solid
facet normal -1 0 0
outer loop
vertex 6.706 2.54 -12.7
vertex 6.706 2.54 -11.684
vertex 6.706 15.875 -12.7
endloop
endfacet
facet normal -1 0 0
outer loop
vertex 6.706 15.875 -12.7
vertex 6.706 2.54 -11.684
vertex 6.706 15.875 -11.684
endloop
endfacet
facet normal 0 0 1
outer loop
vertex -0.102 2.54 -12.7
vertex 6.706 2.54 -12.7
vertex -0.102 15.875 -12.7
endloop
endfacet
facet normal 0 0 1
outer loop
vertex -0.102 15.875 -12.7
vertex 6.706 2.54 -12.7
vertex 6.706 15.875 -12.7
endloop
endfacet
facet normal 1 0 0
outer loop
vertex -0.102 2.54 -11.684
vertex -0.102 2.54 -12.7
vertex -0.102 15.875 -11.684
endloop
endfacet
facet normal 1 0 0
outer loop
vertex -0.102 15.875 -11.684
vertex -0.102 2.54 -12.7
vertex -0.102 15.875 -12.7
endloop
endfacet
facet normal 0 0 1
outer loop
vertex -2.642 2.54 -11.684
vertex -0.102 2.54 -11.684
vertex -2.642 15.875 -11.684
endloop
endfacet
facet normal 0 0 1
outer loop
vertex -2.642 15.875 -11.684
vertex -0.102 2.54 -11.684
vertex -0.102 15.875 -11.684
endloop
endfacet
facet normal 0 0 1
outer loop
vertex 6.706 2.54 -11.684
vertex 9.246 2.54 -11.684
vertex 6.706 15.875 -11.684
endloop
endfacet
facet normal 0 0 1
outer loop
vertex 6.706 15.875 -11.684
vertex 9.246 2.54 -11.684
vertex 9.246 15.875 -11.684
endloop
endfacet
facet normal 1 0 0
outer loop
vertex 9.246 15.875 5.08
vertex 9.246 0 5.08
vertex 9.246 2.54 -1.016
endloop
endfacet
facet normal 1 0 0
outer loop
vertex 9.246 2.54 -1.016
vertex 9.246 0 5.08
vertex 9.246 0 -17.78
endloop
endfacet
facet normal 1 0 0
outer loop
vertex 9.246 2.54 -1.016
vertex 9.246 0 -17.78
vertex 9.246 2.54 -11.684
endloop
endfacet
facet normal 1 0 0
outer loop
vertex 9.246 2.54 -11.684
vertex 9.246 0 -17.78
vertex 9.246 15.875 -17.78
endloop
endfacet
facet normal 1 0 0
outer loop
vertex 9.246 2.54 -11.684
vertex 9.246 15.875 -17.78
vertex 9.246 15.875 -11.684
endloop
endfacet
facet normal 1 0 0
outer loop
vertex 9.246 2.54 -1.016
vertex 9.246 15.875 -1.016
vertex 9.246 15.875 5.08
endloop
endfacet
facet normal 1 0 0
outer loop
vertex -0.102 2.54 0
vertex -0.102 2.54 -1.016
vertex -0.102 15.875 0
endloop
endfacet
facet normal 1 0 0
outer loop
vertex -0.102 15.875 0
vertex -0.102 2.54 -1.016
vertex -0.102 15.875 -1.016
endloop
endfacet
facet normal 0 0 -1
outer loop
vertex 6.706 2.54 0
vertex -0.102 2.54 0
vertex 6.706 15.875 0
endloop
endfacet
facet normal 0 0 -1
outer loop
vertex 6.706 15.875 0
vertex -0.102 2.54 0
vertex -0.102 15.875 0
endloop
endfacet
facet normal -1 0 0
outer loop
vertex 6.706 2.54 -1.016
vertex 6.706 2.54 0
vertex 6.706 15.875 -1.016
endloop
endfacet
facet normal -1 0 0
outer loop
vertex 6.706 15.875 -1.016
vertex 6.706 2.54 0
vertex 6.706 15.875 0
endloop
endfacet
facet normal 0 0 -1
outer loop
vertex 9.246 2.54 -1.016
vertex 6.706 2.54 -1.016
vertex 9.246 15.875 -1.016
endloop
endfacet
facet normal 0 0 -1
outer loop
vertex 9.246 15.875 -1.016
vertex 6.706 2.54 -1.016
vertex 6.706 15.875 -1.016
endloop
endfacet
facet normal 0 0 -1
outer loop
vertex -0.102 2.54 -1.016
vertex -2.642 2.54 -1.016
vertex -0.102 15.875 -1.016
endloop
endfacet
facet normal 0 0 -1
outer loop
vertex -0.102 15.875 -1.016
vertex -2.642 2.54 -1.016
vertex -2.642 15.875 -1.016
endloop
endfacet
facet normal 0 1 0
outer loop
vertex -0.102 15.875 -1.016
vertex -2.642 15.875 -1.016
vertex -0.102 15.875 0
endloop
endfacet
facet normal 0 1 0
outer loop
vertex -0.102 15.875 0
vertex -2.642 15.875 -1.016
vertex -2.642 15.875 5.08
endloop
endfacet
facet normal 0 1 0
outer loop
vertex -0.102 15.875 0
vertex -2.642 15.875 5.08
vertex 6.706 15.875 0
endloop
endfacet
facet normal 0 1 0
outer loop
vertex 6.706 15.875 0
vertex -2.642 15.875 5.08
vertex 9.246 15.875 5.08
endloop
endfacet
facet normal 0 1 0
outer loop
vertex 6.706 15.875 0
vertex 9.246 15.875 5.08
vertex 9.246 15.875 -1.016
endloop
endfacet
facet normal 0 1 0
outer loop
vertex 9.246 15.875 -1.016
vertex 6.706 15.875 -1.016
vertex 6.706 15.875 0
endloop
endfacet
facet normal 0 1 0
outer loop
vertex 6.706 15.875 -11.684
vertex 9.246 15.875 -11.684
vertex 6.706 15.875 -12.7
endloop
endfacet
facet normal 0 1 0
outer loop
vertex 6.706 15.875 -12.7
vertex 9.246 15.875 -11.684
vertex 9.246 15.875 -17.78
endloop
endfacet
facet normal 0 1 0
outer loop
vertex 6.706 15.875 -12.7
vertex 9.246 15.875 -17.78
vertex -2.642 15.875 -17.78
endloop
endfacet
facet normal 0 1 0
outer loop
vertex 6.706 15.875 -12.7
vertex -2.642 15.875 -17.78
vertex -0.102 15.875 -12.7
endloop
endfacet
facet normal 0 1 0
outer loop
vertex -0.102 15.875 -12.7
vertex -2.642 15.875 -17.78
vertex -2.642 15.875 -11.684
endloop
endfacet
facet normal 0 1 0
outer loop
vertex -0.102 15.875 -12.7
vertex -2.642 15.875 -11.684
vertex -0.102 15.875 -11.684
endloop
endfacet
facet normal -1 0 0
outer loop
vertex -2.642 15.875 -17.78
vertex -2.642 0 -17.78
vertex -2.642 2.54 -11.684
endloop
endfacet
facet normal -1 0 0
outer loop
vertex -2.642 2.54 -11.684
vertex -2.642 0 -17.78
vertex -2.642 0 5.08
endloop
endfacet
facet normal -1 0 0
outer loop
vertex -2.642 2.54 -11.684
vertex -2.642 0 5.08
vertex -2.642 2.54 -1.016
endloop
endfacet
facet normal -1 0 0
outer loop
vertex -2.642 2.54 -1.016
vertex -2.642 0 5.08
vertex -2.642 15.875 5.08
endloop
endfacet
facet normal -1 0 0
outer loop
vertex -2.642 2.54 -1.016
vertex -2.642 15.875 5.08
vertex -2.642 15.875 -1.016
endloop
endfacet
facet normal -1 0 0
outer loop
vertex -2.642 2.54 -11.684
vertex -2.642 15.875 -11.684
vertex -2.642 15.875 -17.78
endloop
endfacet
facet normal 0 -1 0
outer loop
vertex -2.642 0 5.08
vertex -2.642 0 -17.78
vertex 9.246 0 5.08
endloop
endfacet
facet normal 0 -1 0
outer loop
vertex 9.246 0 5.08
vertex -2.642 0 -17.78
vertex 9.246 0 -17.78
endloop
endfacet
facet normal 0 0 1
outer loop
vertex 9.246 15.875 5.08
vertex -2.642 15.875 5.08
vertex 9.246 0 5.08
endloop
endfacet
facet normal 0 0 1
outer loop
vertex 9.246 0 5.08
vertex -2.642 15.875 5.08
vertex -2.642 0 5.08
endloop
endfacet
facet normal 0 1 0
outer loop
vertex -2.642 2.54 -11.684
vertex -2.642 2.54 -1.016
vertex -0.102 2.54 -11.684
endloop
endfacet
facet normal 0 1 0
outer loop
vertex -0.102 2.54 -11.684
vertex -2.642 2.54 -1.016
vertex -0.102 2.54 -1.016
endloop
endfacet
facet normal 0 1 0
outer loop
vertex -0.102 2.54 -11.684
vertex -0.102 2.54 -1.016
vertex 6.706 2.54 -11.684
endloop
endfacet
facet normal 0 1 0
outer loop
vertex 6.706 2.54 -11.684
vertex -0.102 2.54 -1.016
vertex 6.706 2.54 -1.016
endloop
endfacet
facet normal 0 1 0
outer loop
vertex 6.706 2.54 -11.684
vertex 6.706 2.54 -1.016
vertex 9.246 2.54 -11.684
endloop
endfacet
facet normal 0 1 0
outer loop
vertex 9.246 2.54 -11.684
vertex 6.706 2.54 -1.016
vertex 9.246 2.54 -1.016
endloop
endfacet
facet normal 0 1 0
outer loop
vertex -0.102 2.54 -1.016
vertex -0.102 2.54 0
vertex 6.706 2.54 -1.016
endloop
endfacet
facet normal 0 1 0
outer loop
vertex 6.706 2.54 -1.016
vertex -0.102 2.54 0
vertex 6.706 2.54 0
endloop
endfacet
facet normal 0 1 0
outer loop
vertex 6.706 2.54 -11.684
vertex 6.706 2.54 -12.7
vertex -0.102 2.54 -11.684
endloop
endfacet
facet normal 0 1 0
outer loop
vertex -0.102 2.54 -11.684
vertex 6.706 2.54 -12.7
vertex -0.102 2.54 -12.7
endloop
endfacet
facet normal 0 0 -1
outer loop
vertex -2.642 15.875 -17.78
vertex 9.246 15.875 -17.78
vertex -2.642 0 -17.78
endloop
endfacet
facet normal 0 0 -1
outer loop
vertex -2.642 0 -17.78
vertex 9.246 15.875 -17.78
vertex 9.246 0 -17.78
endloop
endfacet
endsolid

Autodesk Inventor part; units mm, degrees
ref_plane "YZ Plane" through (0, 0, 0) normal (1, 0, 0) x (0, 1, 0)
ref_plane "XZ Plane" through (0, 0, 0) normal (0, 1, 0) x (-1, 0, 0)
ref_plane "XY Plane" through (0, 0, 0) normal (0, 0, 1) x (1, 0, 0)
sketch "Sketch5" plane through (0, 0, 0) normal (0, 1, 0) x (-1, 0, 0)
  line L0 (0, 0) -> (-6.604, 0) construction
  line L1 (-6.604, 0) -> (-6.604, -12.7) construction
  line L2 (-6.604, -12.7) -> (0, -12.7) construction
  line L3 (0, -12.7) -> (0, 0) construction
  line L4 (2.6416, -15.24) -> (-9.2456, -15.24)
  line L5 (-9.2456, -15.24) -> (-9.2456, 2.54)
  line L6 (-9.2456, 2.54) -> (2.6416, 2.54)
  line L7 (2.6416, 2.54) -> (2.6416, -15.24)
  dimension "d22" = 6.604
  dimension "d23" = 12.7
  dimension "d24" = 2.6416
  dimension "d25" = 2.6416
  dimension "d26" = 2.54
  dimension "d27" = 2.54
extrude "Extrusion3" add sketch "Sketch5" along normal blind 2.54
sketch "Sketch6" plane through (0, 2.54, 0) normal (0, 1, 0) x (1, 0, 0)
  line L0 (-2.6416, -2.54) -> (9.2456, -2.54)
  line L1 (9.2456, -2.54) -> (9.2456, 0)
  line L2 (6.7056, 0) -> (-0.1016, 0)
  line L3 (-2.6416, -0.508) -> (-2.6416, -2.54)
  line L4 (-2.6416, 15.24) -> (-2.6416, -2.54) projected
  line L5 (9.2456, -2.54) -> (9.2456, 15.24) projected
  line L6 (-2.6416, -2.54) -> (9.2456, -2.54) projected
  line L7 (-0.1016, 12.7) -> (6.7056, 12.7)
  line L8 (9.2456, 12.954) -> (9.2456, 15.24)
  line L9 (9.2456, 15.24) -> (-2.6416, 15.24)
  line L10 (-2.6416, 15.24) -> (-2.6416, 12.7)
  line L11 (9.2456, 15.24) -> (-2.6416, 15.24) projected
  line L12 (9.2456, 12.954) -> (9.2456, 11.684)
  line L13 (6.7056, 11.684) -> (6.7056, 12.7)
  line L14 (6.7056, 11.684) -> (9.2456, 11.684)
  line L15 (-2.6416, 12.7) -> (-2.6416, 11.684)
  line L16 (-2.6416, 11.684) -> (-0.1016, 11.684)
  line L17 (-0.1016, 11.684) -> (-0.1016, 12.7)
  line L18 (9.2456, 0) -> (9.2456, 1.016)
  line L19 (9.2456, 1.016) -> (6.7056, 1.016)
  line L20 (6.7056, 1.016) -> (6.7056, 0)
  line L21 (-0.1016, 0) -> (-0.1016, 1.016)
  line L22 (-0.1016, 1.016) -> (-2.6416, 1.016)
  line L23 (-2.6416, 1.016) -> (-2.6416, -0.508)
  point P0 (0, 0)
  point P1 (7.9756, 11.684)
  point P2 (9.2456, 0.508)
  point P3 (-2.6416, 15.24)
  point P4 (-2.6416, 1.016)
  point P5 (9.2456, 0)
  dimension "d30" = 2.54
  dimension "d31" = 2.54
  dimension "d32" = 2.54
  dimension "d33" = 1.016
  dimension "d35" = 2.54
  dimension "d36" = 1.016
  dimension "d37" = 1.016
  dimension "d38" = 2.54
  dimension "d39" = 2.54
  dimension "d40" = 1.016
extrude "Extrusion4" add sketch "Sketch6" along normal blind 13.335 contours L3 L4 L22 L21 L2 L20 L19 L5 L1 L0 | L4 L9 L5 L14 L13 L7 L17 L16
sketch "Sketch8" plane through (9.2456, 0, -15.24) normal (0, 0, -1) x (-1, 0, 0)
  line L0 (0, 0) -> (0, 15.875) projected
  line L1 (11.8872, 0) -> (0, 0) projected
  line L2 (0, 15.875) -> (11.8872, 15.875)
  line L3 (11.8872, 15.875) -> (11.8872, 0)
  line L4 (11.8872, 0) -> (0, 0)
  line L5 (0, 0) -> (0, 15.875)
  point P0 (9.2456, 0)
extrude "Extrusion5" add sketch "Sketch8" along normal blind 2.54
sketch "Sketch9" plane through (-2.6416, 0, 2.54) normal (0, 0, 1) x (1, 0, 0)
  line L0 (2.54, 15.875) -> (0, 15.875) projected
  line L1 (11.8872, 0) -> (0, 0) projected
  line L2 (0, 15.875) -> (11.8872, 15.875)
  line L3 (11.8872, 15.875) -> (11.8872, 0)
  line L4 (11.8872, 0) -> (0, 0)
  line L5 (0, 0) -> (0, 15.875)
  point P0 (2.6416, 0)
  point P1 (0, 0)
extrude "Extrusion6" add sketch "Sketch9" along normal blind 2.54
properties part number "LatchSingleFit" material "PC/ABS Plastic"
